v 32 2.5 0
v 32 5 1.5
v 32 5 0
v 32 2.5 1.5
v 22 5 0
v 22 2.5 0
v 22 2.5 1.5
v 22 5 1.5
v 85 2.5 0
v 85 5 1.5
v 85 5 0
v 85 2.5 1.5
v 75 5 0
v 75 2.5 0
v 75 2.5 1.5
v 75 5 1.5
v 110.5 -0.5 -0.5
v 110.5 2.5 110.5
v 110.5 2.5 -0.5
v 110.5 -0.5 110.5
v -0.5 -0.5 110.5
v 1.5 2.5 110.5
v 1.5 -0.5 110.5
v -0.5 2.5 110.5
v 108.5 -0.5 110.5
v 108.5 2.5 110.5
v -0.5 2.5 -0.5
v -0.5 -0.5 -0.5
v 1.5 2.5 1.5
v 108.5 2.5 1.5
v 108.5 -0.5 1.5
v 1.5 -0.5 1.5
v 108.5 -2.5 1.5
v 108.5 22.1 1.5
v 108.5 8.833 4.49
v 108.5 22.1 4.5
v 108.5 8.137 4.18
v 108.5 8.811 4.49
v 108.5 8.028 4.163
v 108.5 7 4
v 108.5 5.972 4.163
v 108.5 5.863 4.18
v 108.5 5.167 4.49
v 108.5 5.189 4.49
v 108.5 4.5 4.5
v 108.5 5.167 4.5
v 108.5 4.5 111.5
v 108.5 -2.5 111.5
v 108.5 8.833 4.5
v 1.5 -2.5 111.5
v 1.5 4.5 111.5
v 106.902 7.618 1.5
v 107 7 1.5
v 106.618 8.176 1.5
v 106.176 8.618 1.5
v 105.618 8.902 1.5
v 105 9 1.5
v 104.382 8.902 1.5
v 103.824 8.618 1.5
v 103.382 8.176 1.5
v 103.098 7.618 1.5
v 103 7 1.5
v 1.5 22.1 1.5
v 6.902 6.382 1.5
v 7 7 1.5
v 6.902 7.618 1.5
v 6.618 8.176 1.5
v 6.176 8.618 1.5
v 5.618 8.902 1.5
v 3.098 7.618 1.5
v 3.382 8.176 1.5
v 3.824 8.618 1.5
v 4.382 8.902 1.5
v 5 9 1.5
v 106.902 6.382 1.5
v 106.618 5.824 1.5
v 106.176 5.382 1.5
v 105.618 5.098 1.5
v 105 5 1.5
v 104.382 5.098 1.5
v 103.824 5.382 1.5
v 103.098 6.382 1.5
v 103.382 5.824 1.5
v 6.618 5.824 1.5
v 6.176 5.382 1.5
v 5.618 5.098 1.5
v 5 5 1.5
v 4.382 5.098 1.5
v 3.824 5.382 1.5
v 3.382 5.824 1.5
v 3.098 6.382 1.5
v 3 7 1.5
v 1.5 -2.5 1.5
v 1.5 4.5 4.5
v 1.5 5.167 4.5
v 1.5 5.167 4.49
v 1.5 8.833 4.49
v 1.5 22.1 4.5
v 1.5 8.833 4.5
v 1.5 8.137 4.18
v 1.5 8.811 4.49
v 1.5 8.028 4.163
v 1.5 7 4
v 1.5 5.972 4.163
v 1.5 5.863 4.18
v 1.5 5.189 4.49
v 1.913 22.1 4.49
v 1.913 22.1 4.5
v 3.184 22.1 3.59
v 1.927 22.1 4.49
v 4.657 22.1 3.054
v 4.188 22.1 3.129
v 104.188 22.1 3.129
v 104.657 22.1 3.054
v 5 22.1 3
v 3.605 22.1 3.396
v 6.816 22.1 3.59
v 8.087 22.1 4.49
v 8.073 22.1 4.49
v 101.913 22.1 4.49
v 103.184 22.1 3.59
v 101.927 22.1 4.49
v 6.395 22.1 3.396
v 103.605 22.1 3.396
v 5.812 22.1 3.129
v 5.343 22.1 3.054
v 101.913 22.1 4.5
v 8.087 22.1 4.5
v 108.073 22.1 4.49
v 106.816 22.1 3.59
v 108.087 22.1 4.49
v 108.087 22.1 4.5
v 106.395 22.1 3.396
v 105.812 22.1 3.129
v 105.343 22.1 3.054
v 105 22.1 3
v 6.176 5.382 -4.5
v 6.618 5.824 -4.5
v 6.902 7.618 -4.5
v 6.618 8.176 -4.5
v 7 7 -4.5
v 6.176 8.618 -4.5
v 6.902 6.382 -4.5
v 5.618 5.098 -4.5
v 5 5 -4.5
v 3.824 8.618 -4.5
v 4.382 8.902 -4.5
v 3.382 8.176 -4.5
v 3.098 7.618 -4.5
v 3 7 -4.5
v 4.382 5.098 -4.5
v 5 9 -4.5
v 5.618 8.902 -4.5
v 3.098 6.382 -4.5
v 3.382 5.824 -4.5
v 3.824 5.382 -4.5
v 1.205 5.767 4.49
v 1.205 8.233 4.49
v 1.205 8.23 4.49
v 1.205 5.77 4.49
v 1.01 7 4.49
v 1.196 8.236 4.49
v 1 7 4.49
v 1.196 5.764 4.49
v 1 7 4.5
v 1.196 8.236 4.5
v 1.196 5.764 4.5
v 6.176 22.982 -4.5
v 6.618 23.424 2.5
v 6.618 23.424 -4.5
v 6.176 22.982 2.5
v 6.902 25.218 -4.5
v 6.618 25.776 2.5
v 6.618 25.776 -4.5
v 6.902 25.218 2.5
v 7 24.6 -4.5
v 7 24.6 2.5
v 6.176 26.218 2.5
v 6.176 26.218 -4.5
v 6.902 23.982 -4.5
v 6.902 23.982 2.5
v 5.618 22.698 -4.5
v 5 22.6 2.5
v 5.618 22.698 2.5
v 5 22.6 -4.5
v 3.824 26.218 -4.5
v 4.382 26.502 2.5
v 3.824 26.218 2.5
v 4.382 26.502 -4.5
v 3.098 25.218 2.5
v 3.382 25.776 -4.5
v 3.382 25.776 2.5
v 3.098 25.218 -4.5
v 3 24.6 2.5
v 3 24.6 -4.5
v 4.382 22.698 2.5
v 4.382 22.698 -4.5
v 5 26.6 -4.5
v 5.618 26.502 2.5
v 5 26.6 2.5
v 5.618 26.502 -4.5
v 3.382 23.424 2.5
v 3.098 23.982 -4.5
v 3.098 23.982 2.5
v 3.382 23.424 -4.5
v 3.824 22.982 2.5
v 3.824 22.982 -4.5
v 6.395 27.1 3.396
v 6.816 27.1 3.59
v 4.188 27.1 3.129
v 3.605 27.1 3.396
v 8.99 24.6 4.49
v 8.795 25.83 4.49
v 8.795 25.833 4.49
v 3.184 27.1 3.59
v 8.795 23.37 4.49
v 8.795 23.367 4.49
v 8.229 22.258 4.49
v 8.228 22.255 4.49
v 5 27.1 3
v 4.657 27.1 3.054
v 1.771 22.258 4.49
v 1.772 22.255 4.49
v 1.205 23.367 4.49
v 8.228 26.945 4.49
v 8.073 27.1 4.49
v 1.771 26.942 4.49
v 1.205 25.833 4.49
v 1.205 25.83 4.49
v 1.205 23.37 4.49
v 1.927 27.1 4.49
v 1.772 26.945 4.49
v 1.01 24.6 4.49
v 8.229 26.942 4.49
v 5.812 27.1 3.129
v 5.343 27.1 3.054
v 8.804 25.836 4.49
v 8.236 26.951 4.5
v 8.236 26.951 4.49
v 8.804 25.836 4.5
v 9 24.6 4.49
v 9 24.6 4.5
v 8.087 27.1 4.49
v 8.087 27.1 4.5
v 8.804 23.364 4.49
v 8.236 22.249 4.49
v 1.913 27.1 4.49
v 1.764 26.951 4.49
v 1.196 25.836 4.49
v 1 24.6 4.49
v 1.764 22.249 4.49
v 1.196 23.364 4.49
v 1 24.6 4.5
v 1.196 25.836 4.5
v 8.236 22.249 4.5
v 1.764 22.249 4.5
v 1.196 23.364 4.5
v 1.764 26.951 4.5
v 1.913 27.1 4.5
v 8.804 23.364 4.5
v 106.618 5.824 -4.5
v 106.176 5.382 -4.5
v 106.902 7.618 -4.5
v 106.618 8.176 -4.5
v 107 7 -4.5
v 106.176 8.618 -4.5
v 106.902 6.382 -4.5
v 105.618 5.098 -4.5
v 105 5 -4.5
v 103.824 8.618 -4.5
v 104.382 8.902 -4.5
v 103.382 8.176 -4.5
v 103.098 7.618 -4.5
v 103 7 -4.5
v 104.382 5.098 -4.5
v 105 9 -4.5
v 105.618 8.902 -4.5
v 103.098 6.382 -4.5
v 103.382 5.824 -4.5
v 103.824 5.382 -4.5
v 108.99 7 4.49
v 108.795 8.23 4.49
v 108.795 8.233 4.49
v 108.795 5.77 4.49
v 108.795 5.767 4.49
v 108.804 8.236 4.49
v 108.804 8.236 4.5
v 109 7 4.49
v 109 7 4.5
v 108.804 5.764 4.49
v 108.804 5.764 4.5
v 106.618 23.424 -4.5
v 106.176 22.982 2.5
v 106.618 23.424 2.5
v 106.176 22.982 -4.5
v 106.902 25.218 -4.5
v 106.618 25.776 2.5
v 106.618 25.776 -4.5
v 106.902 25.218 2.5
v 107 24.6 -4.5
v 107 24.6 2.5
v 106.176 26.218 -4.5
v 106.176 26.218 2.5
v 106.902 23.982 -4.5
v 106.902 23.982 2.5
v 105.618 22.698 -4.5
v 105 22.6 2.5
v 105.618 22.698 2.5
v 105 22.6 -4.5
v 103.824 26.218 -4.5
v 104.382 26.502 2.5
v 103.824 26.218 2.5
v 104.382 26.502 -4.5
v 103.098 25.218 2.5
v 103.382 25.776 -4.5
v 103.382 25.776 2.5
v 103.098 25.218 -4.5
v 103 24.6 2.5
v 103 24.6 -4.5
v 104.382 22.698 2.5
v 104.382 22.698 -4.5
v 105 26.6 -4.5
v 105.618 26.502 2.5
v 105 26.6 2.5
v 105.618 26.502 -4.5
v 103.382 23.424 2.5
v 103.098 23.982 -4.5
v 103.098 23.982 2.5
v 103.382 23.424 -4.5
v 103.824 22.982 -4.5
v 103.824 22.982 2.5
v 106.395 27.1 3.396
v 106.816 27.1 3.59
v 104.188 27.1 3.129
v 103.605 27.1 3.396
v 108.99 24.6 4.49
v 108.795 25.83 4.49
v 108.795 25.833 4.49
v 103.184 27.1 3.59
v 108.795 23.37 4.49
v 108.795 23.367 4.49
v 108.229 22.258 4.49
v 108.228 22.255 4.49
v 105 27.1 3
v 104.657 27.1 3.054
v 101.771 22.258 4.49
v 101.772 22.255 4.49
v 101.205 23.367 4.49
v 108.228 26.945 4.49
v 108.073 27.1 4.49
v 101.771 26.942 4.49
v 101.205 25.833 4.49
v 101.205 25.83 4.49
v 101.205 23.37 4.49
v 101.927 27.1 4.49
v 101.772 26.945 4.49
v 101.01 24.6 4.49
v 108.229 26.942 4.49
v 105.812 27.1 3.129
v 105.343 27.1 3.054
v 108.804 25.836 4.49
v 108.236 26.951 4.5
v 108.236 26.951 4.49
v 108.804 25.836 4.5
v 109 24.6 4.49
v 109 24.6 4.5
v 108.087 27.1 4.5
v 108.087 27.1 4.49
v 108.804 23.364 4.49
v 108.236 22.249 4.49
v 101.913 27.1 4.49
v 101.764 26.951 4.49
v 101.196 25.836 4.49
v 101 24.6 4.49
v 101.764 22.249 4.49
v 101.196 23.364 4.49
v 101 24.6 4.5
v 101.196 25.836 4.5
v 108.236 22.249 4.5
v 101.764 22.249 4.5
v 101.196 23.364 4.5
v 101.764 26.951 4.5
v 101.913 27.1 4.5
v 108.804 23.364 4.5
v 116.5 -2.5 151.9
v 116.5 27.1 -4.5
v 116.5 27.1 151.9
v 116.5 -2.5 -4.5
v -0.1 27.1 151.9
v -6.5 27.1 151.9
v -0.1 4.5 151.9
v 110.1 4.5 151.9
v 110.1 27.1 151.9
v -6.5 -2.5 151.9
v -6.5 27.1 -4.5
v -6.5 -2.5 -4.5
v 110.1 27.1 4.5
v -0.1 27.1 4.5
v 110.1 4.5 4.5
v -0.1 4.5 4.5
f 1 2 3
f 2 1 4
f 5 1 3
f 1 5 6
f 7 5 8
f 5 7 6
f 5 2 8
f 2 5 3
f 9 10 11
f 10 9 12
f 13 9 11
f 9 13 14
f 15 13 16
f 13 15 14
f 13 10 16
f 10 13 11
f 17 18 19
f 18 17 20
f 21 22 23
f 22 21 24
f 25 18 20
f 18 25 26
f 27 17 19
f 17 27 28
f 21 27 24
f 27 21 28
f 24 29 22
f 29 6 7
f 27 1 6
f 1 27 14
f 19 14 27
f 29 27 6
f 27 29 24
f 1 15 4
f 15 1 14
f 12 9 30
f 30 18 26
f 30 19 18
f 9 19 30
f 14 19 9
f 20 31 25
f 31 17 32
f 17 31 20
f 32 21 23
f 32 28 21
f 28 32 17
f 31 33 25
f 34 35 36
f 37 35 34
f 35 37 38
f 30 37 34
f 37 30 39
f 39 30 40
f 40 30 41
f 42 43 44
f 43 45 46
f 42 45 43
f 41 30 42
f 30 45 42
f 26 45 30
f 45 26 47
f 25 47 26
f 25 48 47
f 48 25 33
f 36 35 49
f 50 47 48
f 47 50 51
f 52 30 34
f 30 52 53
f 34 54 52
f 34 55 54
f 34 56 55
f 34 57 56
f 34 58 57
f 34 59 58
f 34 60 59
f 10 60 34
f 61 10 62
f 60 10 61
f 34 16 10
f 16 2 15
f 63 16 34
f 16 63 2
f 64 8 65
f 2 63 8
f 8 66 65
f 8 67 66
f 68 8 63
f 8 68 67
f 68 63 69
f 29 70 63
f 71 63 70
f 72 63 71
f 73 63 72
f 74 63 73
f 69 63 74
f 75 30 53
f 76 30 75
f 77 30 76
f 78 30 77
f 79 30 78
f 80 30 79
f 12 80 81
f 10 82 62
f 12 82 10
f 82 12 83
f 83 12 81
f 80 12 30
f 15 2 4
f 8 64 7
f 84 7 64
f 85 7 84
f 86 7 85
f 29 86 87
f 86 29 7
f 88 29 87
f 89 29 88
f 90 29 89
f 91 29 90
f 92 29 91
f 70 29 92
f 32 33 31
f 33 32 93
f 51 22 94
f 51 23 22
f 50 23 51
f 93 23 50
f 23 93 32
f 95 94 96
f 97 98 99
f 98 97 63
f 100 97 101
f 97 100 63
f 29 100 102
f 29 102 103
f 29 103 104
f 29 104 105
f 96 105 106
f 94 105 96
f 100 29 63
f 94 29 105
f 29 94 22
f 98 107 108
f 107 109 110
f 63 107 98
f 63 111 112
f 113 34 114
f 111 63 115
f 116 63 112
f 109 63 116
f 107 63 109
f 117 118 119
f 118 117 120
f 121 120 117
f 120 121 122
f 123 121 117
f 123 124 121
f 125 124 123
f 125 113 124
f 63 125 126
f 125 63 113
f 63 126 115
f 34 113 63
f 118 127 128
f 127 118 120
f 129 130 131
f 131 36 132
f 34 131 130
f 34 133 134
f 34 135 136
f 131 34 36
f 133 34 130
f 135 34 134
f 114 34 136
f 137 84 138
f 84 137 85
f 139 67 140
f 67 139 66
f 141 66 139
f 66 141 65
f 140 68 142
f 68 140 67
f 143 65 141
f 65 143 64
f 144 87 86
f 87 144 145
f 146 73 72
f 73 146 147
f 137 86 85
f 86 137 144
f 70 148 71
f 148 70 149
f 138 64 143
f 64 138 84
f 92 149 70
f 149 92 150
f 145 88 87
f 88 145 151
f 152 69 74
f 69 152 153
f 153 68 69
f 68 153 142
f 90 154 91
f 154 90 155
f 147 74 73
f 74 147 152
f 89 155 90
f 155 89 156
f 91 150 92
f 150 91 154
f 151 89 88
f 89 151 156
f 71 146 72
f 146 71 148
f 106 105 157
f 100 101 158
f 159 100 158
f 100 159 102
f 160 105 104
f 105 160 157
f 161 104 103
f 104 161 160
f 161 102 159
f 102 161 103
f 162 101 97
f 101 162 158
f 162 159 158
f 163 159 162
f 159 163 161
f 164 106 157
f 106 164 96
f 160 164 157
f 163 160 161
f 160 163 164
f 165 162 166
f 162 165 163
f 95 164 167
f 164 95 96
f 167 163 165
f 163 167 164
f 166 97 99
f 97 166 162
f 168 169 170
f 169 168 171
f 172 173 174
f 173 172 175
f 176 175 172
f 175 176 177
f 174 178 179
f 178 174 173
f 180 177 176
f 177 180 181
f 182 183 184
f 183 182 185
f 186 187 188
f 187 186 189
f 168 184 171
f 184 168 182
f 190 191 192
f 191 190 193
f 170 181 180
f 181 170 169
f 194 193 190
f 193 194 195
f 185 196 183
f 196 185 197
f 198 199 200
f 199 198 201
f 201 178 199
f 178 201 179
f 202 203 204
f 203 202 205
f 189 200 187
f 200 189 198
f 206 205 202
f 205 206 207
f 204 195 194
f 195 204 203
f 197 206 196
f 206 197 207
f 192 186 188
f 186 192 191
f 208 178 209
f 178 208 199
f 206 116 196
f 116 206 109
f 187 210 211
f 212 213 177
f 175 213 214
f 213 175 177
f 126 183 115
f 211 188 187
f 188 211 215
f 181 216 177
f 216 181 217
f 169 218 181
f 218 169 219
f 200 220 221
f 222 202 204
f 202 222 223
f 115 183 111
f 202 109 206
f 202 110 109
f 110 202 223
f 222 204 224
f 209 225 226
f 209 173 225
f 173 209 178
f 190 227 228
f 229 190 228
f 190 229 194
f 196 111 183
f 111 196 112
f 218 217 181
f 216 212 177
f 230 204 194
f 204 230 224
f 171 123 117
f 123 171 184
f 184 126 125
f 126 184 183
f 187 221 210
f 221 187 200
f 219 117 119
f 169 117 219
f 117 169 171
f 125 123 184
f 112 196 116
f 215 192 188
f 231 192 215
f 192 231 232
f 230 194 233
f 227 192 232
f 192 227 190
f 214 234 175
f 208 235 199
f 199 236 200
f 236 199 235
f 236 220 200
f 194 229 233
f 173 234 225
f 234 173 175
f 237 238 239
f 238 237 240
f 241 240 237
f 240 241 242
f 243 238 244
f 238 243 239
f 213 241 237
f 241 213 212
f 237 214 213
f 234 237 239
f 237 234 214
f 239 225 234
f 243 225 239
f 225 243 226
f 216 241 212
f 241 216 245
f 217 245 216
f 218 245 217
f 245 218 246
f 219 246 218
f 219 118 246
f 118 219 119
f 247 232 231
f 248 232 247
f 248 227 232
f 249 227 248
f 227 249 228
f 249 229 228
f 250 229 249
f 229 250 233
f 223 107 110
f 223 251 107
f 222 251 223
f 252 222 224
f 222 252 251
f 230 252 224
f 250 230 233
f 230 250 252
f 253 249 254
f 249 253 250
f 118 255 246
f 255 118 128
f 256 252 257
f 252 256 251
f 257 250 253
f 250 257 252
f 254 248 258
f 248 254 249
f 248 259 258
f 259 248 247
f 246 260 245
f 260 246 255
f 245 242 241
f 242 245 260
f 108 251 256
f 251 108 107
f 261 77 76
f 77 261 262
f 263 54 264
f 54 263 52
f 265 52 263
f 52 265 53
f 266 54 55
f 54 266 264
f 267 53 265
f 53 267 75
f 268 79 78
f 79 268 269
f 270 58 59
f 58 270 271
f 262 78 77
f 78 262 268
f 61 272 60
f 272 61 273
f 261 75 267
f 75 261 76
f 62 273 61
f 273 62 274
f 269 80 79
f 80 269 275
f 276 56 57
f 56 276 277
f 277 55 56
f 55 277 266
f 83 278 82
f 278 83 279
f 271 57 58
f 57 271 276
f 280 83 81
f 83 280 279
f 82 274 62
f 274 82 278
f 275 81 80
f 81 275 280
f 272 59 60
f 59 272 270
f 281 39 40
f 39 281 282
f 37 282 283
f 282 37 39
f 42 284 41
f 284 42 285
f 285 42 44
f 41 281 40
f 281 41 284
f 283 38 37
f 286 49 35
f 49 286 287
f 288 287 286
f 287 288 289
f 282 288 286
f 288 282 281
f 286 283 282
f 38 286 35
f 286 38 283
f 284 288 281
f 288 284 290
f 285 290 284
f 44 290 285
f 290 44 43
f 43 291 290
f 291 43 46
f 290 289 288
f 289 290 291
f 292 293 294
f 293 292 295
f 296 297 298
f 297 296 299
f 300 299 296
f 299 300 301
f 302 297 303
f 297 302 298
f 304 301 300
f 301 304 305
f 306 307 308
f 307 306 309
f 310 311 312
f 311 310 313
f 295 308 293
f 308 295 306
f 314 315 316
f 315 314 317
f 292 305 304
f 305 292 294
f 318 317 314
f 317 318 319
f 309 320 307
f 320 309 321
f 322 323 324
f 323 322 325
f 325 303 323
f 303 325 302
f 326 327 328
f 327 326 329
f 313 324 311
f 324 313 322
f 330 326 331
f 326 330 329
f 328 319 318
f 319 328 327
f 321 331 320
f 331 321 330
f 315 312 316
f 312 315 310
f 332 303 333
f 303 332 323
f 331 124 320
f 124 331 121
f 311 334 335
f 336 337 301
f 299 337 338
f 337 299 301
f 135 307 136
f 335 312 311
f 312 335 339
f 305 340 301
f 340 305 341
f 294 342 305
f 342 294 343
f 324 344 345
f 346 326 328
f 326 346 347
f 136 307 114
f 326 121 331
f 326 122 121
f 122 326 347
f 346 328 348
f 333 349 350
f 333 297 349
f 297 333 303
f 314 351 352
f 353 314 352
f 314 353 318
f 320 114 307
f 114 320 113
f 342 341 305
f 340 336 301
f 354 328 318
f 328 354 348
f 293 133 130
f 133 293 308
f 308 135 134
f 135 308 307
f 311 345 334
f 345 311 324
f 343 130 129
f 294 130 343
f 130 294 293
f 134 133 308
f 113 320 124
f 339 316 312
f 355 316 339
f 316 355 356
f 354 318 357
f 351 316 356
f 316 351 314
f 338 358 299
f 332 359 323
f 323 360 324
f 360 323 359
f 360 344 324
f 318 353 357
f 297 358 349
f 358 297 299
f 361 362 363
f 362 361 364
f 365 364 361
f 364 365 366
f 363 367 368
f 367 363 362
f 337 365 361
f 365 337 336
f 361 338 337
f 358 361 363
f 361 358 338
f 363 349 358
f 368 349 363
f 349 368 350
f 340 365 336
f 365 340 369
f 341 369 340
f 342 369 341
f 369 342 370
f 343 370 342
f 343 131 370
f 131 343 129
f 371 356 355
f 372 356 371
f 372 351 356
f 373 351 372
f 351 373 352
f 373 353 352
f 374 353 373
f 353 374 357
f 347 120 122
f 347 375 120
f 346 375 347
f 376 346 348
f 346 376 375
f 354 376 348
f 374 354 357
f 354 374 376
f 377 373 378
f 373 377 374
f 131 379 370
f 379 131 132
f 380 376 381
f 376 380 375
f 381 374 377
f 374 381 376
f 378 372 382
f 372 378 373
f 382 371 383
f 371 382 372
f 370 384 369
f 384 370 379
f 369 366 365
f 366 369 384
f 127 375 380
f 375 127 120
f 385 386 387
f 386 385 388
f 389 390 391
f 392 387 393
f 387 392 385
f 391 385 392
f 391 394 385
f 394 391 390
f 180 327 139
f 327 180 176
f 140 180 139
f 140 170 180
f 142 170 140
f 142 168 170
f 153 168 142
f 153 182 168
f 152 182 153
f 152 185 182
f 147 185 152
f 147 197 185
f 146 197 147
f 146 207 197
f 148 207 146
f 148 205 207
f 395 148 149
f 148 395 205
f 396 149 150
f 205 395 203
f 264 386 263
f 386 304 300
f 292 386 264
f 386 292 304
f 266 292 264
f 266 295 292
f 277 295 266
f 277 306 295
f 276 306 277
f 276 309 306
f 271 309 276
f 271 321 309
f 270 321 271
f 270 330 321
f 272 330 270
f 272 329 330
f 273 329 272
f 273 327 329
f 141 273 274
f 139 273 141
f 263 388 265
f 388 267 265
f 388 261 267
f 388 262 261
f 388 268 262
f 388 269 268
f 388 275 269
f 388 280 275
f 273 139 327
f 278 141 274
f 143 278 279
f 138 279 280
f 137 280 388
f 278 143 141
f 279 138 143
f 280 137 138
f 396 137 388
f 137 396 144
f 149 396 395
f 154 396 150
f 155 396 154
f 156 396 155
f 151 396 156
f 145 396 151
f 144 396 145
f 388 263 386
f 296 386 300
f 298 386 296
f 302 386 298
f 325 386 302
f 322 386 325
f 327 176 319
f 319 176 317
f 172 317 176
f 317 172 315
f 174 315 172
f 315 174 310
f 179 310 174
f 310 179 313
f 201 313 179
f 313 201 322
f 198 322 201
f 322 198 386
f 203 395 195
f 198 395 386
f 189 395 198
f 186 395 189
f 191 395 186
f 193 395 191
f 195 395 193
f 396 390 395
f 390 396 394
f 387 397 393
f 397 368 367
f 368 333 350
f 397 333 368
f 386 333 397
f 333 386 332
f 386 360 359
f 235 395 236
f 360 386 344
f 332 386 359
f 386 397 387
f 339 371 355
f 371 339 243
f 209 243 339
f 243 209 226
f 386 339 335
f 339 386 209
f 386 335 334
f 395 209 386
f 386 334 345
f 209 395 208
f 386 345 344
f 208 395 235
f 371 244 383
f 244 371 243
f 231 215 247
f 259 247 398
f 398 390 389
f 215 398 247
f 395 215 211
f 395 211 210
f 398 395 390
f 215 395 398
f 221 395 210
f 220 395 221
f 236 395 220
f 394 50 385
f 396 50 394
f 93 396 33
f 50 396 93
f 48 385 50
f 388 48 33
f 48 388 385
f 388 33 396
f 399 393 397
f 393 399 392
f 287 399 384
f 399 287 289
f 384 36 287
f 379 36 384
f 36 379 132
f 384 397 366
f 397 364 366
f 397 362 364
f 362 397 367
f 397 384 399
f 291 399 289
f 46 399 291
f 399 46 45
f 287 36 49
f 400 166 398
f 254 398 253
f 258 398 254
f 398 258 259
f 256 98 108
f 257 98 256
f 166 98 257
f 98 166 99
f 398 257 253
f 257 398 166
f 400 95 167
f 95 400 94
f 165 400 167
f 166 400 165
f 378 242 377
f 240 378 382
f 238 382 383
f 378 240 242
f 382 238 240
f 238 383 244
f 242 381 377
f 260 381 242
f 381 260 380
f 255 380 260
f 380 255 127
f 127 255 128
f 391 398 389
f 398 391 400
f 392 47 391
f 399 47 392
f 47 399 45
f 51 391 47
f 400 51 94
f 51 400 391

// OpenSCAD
// Holder for 

cutOutDifference=.5; // gap added for cutouts
showPannelInHolder=0;

// Dimensions Solar Pannel
pannelX=110;
pannelY=2;
pannelZ=110;

//wire Box attached to solar Pannel
wireBoxX=45+3;
wireBoxY=22.6;
wireBoxZ=23.4+5;
wireBoxOffsetZ=10-.5;

// Dimensions border added for holder Base
borderBase=2; // Border in every direction
borderX=4+borderBase+cutOutDifference;
borderY=0+borderBase+cutOutDifference;
borderZ=2+borderBase+cutOutDifference;
baseZ=pannelZ;

if(showPannelInHolder){

    translate([0,-80,0])    SolarPannel(cutOut=1);
    translate([0,-160,0])   SolarPannel();

    translate([-40,0,0])    ScrewHole();
}

translate([0,0,0]){
    difference(){
        SolarPannelHolder();
        // translate([100,-40,-10])            cube([100,100,100]);
        }
    
    if(showPannelInHolder)
        translate([0,0,0*borderZ])
            color("white")
                SolarPannel();
}

module SolarPannel(cutOut=0){
    cutOutAdd=cutOutDifference*cutOut;
    
    color("white"){
        // Pannel
        translate( cutOutAdd*[-1,-1,-1])
            cube( [pannelX,pannelY,pannelZ]
                + 2*cutOutAdd*[1,1,1]
                );

        // Pannel cutout to have free view
        if ( cutOut ){
            cutFreeY=borderY+1;
            cutReduceBorder=1.5;
            color("black")
            translate(
                [0,-cutFreeY+.1,0]
                +cutReduceBorder*[1,0,1]
//                + cutOutAdd*[1,1,1]
                )
                 cube( [pannelX,cutFreeY,pannelZ]
                    - 2*cutReduceBorder*[1,0,0]
                      +[0,22,0]);
            
/*
            translate([0,-cutFreeY-pannelY-.2,-cutOutAdd]
                +cutReduceBorder*[1,1,1]
                + cutOutAdd*[1,1,1]
                )
            #    rotate([0,0,-45])
                    cube( [10,cutFreeY,pannelZ]
                    - 2*cutReduceBorder*[1,0,1]);
*/
            }
            
        // Pannel wire attachments
        if ( cutOut ){
            for(x=[22,75])
             translate([x,2,0] )
                     cube( [10,3,15]);
            
        }
        
        translate([0,0,wireBoxOffsetZ]){
            // Wire Box
            translate([pannelX/2-wireBoxX/2+cutOutAdd,cutOutAdd,0])
                cube( [wireBoxX,wireBoxY,wireBoxZ]
                    + 2*cutOutAdd*[1,1,11]);
            // Wire
            translate([pannelX/2+wireBoxX/2,12,10])
                rotate([0,90,0])
                    cylinder(d=3+cutOutAdd,h=20);
            
            if(cutOut){
              // Wire cutout
                translate([pannelX/2+wireBoxX/2,1,7])
                    cube([20,50,6]);
                translate([pannelX/2+wireBoxX/2,13,7])
                    cube([20,10,50]);
                translate([pannelX/2+wireBoxX/2+10,0,10])
                    rotate([0,90,90])
                        cylinder(d=13,h=50);
            }
            }
        }
}

module SolarPannelHolder(){
    
    difference(){
        holderZ=wireBoxZ+borderZ+wireBoxOffsetZ-5;

        translate(-[borderX,borderY,borderZ])
            cube([pannelX,pannelY+wireBoxY,holderZ+baseZ]
                +2*[borderX,borderY,borderZ]);

        SolarPannel(cutOut=1);

        // For saving Material cut out a lot in the back
        translate([-.1,0,0]
            +[-borderX*0,pannelY+borderY,borderZ])
            cube([pannelX,pannelY+wireBoxY,holderZ-borderZ+pannelZ]
                +2*[borderX*0,borderY,borderZ]
                +[.2,0,0]);
     
        // Screw holes
        screwLen=holderZ+borderZ+1;
        screwOffset=3+2;
        for ( x=[screwOffset,pannelX-screwOffset])
            for ( y=[pannelY+screwOffset,
                    pannelY+wireBoxY-0*screwOffset])
                translate([x,y,borderZ])
                   ScrewHole(d=4,screwLen=screwLen);
    }
}


// Schrauben Loch fuer Senkkopf Schrauben
module ScrewHole(
    d=3, 
    screwLen=20){         

    dScrew=d;
    dHead=dScrew+4;
    $fn=20;
        
    translate([0,0,0]){
//        rotate([270,0,0])
            union(){
                translate([0,0,-screwLen]) 
                    cylinder(d=dScrew,h=screwLen);
                translate([0,0,-2]) 
                    cylinder(d2=dHead,d1=dScrew,h=2);
                translate([0,0,-.01]) 
                    cylinder(d=dHead,h=51);
            }
    }
}
